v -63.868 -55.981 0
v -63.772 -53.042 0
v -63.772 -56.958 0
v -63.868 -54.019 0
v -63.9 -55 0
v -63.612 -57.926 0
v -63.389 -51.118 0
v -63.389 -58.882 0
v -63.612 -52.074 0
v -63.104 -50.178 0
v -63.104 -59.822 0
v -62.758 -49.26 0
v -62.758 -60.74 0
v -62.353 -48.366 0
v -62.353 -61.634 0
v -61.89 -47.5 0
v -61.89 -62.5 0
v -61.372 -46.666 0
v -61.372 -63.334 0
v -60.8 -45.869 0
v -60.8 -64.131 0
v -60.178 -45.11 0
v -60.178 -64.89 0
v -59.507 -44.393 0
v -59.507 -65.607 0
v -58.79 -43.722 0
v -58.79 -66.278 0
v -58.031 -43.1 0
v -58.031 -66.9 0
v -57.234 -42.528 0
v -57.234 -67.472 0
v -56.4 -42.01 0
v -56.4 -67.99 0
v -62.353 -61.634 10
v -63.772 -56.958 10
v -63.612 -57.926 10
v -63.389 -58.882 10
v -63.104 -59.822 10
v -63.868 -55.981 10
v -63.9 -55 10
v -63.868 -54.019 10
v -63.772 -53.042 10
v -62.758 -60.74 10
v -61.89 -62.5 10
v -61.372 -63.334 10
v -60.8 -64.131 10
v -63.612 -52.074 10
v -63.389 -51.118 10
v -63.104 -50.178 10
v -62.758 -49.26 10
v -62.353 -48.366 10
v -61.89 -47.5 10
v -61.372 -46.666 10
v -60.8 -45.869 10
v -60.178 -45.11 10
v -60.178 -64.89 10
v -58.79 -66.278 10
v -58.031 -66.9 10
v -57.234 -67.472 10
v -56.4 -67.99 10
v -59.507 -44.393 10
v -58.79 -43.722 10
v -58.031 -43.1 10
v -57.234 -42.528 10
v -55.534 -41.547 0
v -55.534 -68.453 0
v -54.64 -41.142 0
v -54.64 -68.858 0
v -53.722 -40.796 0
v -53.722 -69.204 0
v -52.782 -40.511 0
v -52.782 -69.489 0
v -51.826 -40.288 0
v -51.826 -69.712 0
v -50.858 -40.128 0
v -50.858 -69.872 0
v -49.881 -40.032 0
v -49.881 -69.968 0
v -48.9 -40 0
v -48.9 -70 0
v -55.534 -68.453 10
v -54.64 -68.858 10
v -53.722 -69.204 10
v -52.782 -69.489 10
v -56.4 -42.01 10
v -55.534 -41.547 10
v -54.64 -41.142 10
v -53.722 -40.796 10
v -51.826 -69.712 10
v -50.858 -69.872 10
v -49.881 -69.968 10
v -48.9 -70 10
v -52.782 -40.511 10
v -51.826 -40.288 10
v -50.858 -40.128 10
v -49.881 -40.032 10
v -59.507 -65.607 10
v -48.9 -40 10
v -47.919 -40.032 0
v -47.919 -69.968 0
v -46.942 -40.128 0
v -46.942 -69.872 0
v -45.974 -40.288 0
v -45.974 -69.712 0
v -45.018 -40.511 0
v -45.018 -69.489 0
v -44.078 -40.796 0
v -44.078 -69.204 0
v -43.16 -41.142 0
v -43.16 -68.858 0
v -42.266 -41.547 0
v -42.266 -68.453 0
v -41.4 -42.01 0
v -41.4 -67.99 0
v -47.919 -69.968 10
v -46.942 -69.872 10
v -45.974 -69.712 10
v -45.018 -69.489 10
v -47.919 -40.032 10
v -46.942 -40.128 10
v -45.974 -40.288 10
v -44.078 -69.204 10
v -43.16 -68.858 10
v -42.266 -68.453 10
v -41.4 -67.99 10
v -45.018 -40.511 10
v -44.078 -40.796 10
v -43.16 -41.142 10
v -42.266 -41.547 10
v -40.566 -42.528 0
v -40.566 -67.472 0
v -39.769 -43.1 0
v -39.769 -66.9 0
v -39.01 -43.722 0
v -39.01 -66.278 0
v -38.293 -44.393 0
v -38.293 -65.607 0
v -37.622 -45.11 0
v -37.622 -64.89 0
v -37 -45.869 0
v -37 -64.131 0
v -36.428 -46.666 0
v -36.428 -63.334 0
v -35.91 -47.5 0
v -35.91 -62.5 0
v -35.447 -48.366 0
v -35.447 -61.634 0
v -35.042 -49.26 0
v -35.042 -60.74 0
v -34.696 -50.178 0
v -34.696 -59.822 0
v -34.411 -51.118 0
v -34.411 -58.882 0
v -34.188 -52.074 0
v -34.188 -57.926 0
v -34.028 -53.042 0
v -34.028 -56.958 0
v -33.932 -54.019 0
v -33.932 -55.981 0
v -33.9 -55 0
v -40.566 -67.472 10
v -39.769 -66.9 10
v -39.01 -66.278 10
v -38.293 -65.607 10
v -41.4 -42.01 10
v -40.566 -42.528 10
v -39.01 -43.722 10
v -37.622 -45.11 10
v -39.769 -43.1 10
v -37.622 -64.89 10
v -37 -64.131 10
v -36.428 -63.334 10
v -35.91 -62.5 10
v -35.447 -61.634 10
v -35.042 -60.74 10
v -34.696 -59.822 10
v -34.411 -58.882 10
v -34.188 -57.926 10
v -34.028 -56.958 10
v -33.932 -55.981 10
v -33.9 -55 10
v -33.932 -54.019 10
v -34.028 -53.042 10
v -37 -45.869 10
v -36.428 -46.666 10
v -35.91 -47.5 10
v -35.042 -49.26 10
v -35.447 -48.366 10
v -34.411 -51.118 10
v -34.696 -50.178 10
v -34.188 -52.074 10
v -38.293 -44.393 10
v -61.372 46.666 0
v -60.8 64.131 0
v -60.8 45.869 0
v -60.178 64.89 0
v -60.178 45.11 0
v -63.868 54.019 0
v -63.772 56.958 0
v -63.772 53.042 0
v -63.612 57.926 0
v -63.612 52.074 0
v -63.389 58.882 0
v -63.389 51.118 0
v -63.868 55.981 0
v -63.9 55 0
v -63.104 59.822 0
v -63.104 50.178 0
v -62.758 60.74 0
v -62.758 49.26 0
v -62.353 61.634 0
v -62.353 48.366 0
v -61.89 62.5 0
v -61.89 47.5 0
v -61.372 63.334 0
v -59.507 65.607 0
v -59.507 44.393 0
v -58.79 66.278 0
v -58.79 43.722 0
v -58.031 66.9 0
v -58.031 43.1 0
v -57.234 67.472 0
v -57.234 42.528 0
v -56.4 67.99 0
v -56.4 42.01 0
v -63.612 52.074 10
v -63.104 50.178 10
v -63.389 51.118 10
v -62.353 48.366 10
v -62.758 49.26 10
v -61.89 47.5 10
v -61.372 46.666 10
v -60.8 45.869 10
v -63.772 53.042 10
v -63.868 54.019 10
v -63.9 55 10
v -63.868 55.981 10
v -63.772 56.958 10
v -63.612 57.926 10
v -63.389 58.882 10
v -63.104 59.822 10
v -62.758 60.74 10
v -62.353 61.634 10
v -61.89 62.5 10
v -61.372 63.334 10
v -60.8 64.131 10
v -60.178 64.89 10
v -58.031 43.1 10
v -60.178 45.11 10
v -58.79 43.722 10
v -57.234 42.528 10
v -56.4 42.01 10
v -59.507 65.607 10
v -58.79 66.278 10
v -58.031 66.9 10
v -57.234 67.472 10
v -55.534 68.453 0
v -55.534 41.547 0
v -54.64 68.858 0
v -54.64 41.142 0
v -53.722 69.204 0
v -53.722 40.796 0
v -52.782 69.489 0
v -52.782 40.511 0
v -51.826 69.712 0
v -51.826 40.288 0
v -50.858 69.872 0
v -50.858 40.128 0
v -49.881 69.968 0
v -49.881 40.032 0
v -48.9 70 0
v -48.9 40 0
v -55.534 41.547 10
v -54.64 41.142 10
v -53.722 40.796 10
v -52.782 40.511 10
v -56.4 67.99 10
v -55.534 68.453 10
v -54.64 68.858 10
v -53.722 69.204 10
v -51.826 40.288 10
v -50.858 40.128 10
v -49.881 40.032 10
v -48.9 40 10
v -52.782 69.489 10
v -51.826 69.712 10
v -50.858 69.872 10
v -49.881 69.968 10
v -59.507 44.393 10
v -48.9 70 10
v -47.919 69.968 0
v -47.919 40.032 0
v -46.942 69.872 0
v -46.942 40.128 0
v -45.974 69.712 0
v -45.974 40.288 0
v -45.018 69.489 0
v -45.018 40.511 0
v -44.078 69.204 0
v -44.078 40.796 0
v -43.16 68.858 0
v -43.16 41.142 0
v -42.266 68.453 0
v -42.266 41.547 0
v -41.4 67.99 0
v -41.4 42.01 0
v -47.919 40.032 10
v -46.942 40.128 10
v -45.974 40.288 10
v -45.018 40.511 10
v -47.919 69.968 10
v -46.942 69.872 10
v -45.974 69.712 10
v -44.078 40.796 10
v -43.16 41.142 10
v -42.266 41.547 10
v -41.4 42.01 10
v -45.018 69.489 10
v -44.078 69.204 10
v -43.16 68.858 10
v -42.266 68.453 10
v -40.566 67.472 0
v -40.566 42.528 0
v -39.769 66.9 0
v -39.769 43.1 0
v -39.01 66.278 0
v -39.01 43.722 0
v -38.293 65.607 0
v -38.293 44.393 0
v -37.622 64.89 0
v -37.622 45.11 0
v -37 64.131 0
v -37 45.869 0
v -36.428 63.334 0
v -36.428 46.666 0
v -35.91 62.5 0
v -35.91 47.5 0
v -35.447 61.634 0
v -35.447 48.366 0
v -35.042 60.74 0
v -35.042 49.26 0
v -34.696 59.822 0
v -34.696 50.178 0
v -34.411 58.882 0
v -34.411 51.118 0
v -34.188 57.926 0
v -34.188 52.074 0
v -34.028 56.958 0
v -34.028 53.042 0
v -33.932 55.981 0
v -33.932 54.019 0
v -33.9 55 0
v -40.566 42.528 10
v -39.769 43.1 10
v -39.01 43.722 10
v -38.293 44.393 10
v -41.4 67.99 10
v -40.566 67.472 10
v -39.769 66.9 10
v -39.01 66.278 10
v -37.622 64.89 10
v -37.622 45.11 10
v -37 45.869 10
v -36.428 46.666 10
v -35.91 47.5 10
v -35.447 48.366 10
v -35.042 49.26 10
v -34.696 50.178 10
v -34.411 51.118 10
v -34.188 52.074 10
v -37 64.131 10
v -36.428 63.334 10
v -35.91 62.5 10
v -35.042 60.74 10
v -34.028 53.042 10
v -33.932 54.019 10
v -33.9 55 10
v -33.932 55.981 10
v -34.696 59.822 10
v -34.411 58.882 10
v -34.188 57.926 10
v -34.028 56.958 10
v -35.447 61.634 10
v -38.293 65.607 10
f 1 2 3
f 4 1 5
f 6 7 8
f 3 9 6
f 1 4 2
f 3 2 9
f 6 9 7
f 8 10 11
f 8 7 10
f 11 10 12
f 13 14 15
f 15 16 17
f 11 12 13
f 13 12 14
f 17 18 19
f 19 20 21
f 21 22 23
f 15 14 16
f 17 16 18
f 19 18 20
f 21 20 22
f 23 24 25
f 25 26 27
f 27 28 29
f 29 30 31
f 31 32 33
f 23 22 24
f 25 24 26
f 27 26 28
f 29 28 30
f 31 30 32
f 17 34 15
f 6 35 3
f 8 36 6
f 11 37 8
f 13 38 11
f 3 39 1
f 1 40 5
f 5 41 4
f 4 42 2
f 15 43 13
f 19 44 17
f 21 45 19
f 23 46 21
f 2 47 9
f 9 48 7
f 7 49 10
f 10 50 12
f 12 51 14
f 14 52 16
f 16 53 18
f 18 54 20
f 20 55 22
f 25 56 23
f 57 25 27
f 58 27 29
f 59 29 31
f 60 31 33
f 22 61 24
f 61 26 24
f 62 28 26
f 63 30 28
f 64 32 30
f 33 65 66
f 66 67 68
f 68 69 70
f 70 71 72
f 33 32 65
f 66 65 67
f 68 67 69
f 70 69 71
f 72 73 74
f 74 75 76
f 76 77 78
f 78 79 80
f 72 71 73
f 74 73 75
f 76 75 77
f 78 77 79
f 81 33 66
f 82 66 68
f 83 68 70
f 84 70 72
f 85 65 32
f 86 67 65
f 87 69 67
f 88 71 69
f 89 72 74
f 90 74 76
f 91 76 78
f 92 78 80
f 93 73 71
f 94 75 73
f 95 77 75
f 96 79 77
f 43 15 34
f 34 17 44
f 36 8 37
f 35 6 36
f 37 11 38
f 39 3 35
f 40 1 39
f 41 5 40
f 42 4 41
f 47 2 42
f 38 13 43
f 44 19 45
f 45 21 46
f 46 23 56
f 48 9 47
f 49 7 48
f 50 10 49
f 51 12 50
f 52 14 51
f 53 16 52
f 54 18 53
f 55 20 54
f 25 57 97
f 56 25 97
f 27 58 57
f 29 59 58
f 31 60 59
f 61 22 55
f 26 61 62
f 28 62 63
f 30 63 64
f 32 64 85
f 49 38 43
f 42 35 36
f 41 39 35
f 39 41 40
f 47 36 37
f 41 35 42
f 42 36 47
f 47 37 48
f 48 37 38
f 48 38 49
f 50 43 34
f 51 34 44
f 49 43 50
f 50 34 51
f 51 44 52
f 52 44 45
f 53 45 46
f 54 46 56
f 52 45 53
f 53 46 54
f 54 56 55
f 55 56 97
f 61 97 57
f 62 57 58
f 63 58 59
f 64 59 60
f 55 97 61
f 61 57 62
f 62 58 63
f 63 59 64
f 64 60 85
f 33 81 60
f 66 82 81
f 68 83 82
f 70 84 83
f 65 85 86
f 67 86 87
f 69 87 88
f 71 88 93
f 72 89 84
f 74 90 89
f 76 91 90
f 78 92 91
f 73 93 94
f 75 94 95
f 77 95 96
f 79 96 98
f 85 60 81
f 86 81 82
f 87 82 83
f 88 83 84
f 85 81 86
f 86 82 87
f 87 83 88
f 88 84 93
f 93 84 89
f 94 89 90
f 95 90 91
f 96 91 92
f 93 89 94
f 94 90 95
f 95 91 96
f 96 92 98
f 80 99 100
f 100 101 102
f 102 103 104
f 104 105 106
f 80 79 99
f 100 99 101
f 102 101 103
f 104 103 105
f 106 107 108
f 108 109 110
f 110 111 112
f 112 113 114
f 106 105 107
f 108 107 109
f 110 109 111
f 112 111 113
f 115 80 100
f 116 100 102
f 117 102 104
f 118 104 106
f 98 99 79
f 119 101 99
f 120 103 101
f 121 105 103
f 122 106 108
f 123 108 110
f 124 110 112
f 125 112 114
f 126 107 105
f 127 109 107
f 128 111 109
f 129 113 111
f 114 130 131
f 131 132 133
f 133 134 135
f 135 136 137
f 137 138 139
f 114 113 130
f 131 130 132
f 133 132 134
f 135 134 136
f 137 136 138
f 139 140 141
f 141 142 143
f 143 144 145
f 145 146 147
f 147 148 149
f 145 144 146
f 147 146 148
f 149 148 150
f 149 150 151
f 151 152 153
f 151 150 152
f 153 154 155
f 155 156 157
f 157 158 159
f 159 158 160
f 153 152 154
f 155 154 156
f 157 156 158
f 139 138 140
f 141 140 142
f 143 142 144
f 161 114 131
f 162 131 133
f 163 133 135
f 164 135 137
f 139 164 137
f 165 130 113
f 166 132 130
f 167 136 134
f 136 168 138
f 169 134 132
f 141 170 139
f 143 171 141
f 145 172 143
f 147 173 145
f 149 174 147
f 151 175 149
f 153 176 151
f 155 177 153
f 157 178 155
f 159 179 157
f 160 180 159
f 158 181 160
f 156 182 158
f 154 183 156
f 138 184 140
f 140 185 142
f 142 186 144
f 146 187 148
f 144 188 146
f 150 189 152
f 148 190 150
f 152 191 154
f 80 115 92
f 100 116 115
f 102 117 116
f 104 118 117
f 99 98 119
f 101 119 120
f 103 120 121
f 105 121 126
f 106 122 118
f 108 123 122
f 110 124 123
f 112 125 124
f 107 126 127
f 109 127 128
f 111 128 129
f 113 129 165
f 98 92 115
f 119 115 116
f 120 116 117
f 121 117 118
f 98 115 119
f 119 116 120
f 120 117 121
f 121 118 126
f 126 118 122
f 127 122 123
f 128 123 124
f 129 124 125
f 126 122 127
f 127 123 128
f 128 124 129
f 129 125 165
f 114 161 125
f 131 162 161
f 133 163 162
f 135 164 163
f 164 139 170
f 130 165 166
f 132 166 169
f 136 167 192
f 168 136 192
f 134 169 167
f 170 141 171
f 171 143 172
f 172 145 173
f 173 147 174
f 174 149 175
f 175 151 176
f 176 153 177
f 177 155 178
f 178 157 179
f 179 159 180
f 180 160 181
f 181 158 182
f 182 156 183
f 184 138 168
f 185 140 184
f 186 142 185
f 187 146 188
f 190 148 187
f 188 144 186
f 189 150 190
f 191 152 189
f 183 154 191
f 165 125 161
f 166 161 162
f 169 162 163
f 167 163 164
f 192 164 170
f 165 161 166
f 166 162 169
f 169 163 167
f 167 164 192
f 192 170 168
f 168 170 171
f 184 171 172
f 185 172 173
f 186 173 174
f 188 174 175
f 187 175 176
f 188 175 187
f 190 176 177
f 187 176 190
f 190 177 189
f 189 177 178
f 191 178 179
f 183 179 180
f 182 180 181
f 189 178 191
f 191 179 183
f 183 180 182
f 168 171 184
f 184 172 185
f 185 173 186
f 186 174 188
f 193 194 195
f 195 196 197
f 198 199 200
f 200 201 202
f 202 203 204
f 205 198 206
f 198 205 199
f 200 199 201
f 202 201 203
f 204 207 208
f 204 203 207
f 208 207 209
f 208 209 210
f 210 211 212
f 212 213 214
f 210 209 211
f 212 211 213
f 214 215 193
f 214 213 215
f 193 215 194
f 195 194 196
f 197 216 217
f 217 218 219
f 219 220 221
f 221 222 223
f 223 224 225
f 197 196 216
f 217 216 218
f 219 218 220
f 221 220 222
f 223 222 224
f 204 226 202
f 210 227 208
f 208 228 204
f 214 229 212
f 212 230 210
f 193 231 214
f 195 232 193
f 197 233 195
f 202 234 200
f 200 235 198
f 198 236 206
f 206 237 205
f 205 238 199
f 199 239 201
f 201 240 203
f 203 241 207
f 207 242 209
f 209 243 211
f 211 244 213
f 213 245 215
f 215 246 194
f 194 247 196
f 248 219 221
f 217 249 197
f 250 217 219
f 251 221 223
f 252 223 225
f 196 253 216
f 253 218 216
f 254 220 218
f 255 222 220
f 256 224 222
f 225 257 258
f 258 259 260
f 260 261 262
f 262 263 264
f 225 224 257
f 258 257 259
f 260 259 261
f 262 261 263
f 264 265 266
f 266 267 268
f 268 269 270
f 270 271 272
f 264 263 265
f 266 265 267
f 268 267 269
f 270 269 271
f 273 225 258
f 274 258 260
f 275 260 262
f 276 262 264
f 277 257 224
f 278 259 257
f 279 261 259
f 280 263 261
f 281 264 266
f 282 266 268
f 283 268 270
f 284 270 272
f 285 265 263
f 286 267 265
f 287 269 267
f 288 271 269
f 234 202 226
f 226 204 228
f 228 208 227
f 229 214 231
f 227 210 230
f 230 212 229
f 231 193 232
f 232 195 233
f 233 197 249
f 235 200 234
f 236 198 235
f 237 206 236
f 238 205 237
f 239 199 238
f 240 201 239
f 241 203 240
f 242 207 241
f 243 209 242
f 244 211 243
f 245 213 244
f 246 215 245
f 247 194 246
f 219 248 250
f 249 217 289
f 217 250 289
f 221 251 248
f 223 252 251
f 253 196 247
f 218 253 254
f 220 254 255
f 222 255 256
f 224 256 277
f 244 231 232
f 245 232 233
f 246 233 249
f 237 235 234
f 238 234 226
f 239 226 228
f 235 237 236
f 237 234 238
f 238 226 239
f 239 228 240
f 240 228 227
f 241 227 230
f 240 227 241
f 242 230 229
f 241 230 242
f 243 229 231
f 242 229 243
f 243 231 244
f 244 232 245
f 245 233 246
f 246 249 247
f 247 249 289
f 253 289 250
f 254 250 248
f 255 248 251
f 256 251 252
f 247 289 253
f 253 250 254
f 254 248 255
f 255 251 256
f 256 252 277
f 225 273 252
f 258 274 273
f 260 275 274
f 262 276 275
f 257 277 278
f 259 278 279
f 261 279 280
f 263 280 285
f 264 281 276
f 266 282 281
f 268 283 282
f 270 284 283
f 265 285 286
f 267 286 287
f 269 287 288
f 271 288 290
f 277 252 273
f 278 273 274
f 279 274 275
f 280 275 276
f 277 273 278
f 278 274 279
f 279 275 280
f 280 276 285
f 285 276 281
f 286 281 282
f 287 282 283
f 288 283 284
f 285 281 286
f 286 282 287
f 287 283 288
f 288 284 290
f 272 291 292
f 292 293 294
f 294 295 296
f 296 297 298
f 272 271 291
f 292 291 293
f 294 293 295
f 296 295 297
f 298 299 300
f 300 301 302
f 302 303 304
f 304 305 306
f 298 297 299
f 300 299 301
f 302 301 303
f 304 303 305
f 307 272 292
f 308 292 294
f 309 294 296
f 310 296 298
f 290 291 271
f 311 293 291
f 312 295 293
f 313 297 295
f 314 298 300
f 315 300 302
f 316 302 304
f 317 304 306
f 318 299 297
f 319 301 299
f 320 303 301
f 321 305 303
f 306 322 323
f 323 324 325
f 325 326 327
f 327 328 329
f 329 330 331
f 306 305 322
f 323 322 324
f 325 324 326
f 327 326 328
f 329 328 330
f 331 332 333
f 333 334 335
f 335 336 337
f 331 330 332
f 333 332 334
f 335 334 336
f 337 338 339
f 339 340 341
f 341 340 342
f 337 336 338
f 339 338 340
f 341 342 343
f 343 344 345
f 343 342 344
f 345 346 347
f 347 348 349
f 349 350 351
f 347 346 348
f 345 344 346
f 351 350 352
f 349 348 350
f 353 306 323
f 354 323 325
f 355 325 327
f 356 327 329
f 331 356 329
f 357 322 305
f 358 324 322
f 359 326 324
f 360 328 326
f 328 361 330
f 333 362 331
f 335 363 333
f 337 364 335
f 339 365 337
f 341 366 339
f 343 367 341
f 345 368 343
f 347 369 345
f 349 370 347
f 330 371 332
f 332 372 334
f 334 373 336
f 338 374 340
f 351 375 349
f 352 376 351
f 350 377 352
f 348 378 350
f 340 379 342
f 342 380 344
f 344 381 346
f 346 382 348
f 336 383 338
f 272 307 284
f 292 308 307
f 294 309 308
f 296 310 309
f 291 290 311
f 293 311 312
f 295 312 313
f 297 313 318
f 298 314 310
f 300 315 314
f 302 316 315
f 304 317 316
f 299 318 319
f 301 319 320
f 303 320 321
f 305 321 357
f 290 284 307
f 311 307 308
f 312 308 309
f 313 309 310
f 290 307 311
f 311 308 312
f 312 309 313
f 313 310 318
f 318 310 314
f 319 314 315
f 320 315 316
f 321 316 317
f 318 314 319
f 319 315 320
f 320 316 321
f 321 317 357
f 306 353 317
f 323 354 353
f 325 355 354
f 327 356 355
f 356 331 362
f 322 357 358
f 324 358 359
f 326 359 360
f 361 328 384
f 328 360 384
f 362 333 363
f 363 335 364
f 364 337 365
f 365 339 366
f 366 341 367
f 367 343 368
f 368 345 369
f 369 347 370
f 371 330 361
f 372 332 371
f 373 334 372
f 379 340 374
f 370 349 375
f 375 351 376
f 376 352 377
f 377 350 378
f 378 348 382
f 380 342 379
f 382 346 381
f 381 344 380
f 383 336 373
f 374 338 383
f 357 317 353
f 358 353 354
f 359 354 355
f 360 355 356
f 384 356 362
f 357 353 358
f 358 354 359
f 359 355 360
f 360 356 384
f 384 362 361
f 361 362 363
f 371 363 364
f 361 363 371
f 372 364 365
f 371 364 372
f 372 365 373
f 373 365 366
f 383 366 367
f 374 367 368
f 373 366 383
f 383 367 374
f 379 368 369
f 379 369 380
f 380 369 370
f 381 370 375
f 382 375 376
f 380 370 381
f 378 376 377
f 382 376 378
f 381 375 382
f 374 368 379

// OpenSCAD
// file: seat_board_lib.scad
// =====================================================================
//  RAD passenger seat - shared board geometry (no top-level object)
//  Included by seat_board.scad (one piece) and seat_board_split.scad
//  (two interlocking halves).
//  All dimensions in millimetres.
// =====================================================================

/* [Seat footprint] */
seat_len      = 11.5 * 25.4;   // 292.1  cushion overall length
seat_wid      = 6.0  * 25.4;   // 152.4  cushion overall width
side_clear    = 5.0;           // margin per side inside the cover
corner_r      = 18;            // plan-view corner radius
edge_chamfer  = 0.8;           // chamfer on top and bottom perimeters

/* [Bolt pattern - centred] */
pitch_x       = 223;           // eye-to-eye, along length
pitch_y       = 110;           // eye-to-eye, across width
bolt_hole_d   = 6.8;           // M6 clearance
hex_af        = 10.0;          // M6 hex head across flats
hex_fit       = 0.6;           // total clearance in hex trap (print tolerance)
hex_depth     = 5.5;           // trap depth from the top of the boss
hex_lead      = 0.8;           // lead-in chamfer at trap mouth
hex_rot       = 0;             // 0 deg = flats parallel to X axis

/* [Height budget] */
// total_height is the only dimension the cover cares about. Everything
// above the plate (ribs, rim, bolt pads) is packed into the leftover.
total_height  = 10.0;
thickness     = 7.5;           // plate; the remainder becomes rib depth

/* [Reinforcement] */
reinforce     = true;          // bosses + rib grid on the cushion face
boss_d        = 26;            // pad diameter at each bolt
boss_fillet   = 2.5;           // 45 deg blend into the plate
rib_w         = 6.0;           // rib width at the base
rib_top_w     = 3.5;           // rib width at the top
rim           = true;          // closed perimeter rib = torsion box
rim_inset     = 8.0;           // board edge to rim outer face
rim_w         = 6.0;           // rim width
rib_inset     = 6.0;           // rib end clearance when the rim is off

rib_h         = total_height - thickness;
boss_h        = rib_h;
rib_reach     = rim ? rim_inset + rim_w / 2 : rib_inset;

// ---------------------------------------------------------------------
board_len = seat_len - 2 * side_clear;
board_wid = seat_wid - 2 * side_clear;
hex_d     = (hex_af + hex_fit) / cos(30);   // across-corners of trap
hex_top   = thickness + (reinforce ? boss_h : 0);

$fn = 64;

// ---------------------------------------------------------------------
module rrect(l, w, r) {
    offset(r = r, $fn = 128) square([l - 2 * r, w - 2 * r], center = true);
}

// plate with chamfered top and bottom perimeter
module slab(l, w, r, h, c) {
    hull() {
        linear_extrude(0.01)          offset(delta = -c) rrect(l, w, r);
        translate([0, 0, c])          linear_extrude(0.01) rrect(l, w, r);
        translate([0, 0, h - c])      linear_extrude(0.01) rrect(l, w, r);
        translate([0, 0, h - 0.01])   linear_extrude(0.01) offset(delta = -c) rrect(l, w, r);
    }
}

// conical-skirted pad around a bolt station
module boss() {
    // keep the fillet control below the boss top so the hull cannot overshoot
    // the height envelope when boss_h equals boss_fillet
    fillet = min(boss_fillet, boss_h - 0.1);
    hull() {
        translate([0, 0, thickness - 0.01])
            cylinder(d = boss_d + 2 * fillet, h = 0.02, $fn = 96);
        translate([0, 0, thickness + fillet])
            cylinder(d = boss_d, h = 0.01, $fn = 96);
        translate([0, 0, hex_top - 0.01])
            cylinder(d = boss_d, h = 0.01, $fn = 96);
    }
}

// one tapered rib, length along local X, centred on local origin.
// ztop is nudged per rib family so no two top faces end up coplanar.
module rib(len, ztop) {
    hull() {
        translate([0, 0, thickness - 0.01])
            cube([len, rib_w, 0.02], center = true);
        translate([0, 0, ztop - 0.01])
            cube([len, rib_top_w, 0.02], center = true);
    }
}

// closed loop around the perimeter - ties every rib into a torsion box
module rim_ring() {
    z0 = thickness - 0.01;
    z1 = hex_top - 0.09;
    translate([0, 0, z0])
        difference() {
            linear_extrude(z1 - z0)
                rrect(board_len - 2 * rim_inset, board_wid - 2 * rim_inset,
                      max(0.5, corner_r - rim_inset));
            translate([0, 0, -1])
                linear_extrude(z1 - z0 + 2)
                    rrect(board_len - 2 * rim_inset - 2 * rim_w,
                          board_wid - 2 * rim_inset - 2 * rim_w,
                          max(0.5, corner_r - rim_inset - rim_w));
        }
}

module bolt_station() {
    translate([0, 0, -1])
        cylinder(d = bolt_hole_d, h = hex_top + 3, $fn = 64);

    translate([0, 0, hex_top - hex_depth])
        cylinder(d = hex_d, h = hex_depth + 1, $fn = 6);

    translate([0, 0, hex_top - hex_lead])
        hull() {
            cylinder(d = hex_d, h = 0.01, $fn = 6);
            translate([0, 0, hex_lead])
                cylinder(d = hex_d + 2 * hex_lead, h = 0.01, $fn = 6);
        }
}

// cross_ribs is exposed so the split version can move the centre ribs
// clear of the interlocking seam.
module seat_board(cross_ribs = [-pitch_x / 2, 0, pitch_x / 2]) {
    difference() {
        union() {
            slab(board_len, board_wid, corner_r, thickness, edge_chamfer);

            if (reinforce) {
                for (sx = [-1, 1], sy = [-1, 1])
                    translate([sx * pitch_x / 2, sy * pitch_y / 2, 0])
                        boss();

                if (rim)
                    rim_ring();

                for (y = [-pitch_y / 2, 0, pitch_y / 2])
                    translate([0, y, 0])
                        rib(board_len - 2 * rib_reach, hex_top - 0.05);

                for (x = cross_ribs)
                    translate([x, 0, 0])
                        rotate([0, 0, 90])
                            rib(board_wid - 2 * rib_reach, hex_top - 0.12);
            }
        }

        for (sx = [-1, 1], sy = [-1, 1])
            translate([sx * pitch_x / 2, sy * pitch_y / 2, 0])
                rotate([0, 0, hex_rot])
                    bolt_station();
    }
}
// main file
// Optional slicer modifier: two 30 mm cylinders covering the bolt pads of the
// half. Load this in Orca as a Modifier on the object, then set its sparse
// infill density to 100%.
//
// Coordinates match out/seat_board_half.3mf, which is centred on the origin.
include <seat_board_lib.scad>

seam_depth = 16;
seam_gap   = 0.15;

// the half spans x = -board_len/2 .. seam_depth-gap, so this centres it
dx = (board_len / 2 - seam_depth + seam_gap) / 2;

for (sy = [-1, 1])
    translate([-pitch_x / 2 + dx, sy * pitch_y / 2, 0])
        cylinder(d = 30, h = total_height, $fn = 96);
